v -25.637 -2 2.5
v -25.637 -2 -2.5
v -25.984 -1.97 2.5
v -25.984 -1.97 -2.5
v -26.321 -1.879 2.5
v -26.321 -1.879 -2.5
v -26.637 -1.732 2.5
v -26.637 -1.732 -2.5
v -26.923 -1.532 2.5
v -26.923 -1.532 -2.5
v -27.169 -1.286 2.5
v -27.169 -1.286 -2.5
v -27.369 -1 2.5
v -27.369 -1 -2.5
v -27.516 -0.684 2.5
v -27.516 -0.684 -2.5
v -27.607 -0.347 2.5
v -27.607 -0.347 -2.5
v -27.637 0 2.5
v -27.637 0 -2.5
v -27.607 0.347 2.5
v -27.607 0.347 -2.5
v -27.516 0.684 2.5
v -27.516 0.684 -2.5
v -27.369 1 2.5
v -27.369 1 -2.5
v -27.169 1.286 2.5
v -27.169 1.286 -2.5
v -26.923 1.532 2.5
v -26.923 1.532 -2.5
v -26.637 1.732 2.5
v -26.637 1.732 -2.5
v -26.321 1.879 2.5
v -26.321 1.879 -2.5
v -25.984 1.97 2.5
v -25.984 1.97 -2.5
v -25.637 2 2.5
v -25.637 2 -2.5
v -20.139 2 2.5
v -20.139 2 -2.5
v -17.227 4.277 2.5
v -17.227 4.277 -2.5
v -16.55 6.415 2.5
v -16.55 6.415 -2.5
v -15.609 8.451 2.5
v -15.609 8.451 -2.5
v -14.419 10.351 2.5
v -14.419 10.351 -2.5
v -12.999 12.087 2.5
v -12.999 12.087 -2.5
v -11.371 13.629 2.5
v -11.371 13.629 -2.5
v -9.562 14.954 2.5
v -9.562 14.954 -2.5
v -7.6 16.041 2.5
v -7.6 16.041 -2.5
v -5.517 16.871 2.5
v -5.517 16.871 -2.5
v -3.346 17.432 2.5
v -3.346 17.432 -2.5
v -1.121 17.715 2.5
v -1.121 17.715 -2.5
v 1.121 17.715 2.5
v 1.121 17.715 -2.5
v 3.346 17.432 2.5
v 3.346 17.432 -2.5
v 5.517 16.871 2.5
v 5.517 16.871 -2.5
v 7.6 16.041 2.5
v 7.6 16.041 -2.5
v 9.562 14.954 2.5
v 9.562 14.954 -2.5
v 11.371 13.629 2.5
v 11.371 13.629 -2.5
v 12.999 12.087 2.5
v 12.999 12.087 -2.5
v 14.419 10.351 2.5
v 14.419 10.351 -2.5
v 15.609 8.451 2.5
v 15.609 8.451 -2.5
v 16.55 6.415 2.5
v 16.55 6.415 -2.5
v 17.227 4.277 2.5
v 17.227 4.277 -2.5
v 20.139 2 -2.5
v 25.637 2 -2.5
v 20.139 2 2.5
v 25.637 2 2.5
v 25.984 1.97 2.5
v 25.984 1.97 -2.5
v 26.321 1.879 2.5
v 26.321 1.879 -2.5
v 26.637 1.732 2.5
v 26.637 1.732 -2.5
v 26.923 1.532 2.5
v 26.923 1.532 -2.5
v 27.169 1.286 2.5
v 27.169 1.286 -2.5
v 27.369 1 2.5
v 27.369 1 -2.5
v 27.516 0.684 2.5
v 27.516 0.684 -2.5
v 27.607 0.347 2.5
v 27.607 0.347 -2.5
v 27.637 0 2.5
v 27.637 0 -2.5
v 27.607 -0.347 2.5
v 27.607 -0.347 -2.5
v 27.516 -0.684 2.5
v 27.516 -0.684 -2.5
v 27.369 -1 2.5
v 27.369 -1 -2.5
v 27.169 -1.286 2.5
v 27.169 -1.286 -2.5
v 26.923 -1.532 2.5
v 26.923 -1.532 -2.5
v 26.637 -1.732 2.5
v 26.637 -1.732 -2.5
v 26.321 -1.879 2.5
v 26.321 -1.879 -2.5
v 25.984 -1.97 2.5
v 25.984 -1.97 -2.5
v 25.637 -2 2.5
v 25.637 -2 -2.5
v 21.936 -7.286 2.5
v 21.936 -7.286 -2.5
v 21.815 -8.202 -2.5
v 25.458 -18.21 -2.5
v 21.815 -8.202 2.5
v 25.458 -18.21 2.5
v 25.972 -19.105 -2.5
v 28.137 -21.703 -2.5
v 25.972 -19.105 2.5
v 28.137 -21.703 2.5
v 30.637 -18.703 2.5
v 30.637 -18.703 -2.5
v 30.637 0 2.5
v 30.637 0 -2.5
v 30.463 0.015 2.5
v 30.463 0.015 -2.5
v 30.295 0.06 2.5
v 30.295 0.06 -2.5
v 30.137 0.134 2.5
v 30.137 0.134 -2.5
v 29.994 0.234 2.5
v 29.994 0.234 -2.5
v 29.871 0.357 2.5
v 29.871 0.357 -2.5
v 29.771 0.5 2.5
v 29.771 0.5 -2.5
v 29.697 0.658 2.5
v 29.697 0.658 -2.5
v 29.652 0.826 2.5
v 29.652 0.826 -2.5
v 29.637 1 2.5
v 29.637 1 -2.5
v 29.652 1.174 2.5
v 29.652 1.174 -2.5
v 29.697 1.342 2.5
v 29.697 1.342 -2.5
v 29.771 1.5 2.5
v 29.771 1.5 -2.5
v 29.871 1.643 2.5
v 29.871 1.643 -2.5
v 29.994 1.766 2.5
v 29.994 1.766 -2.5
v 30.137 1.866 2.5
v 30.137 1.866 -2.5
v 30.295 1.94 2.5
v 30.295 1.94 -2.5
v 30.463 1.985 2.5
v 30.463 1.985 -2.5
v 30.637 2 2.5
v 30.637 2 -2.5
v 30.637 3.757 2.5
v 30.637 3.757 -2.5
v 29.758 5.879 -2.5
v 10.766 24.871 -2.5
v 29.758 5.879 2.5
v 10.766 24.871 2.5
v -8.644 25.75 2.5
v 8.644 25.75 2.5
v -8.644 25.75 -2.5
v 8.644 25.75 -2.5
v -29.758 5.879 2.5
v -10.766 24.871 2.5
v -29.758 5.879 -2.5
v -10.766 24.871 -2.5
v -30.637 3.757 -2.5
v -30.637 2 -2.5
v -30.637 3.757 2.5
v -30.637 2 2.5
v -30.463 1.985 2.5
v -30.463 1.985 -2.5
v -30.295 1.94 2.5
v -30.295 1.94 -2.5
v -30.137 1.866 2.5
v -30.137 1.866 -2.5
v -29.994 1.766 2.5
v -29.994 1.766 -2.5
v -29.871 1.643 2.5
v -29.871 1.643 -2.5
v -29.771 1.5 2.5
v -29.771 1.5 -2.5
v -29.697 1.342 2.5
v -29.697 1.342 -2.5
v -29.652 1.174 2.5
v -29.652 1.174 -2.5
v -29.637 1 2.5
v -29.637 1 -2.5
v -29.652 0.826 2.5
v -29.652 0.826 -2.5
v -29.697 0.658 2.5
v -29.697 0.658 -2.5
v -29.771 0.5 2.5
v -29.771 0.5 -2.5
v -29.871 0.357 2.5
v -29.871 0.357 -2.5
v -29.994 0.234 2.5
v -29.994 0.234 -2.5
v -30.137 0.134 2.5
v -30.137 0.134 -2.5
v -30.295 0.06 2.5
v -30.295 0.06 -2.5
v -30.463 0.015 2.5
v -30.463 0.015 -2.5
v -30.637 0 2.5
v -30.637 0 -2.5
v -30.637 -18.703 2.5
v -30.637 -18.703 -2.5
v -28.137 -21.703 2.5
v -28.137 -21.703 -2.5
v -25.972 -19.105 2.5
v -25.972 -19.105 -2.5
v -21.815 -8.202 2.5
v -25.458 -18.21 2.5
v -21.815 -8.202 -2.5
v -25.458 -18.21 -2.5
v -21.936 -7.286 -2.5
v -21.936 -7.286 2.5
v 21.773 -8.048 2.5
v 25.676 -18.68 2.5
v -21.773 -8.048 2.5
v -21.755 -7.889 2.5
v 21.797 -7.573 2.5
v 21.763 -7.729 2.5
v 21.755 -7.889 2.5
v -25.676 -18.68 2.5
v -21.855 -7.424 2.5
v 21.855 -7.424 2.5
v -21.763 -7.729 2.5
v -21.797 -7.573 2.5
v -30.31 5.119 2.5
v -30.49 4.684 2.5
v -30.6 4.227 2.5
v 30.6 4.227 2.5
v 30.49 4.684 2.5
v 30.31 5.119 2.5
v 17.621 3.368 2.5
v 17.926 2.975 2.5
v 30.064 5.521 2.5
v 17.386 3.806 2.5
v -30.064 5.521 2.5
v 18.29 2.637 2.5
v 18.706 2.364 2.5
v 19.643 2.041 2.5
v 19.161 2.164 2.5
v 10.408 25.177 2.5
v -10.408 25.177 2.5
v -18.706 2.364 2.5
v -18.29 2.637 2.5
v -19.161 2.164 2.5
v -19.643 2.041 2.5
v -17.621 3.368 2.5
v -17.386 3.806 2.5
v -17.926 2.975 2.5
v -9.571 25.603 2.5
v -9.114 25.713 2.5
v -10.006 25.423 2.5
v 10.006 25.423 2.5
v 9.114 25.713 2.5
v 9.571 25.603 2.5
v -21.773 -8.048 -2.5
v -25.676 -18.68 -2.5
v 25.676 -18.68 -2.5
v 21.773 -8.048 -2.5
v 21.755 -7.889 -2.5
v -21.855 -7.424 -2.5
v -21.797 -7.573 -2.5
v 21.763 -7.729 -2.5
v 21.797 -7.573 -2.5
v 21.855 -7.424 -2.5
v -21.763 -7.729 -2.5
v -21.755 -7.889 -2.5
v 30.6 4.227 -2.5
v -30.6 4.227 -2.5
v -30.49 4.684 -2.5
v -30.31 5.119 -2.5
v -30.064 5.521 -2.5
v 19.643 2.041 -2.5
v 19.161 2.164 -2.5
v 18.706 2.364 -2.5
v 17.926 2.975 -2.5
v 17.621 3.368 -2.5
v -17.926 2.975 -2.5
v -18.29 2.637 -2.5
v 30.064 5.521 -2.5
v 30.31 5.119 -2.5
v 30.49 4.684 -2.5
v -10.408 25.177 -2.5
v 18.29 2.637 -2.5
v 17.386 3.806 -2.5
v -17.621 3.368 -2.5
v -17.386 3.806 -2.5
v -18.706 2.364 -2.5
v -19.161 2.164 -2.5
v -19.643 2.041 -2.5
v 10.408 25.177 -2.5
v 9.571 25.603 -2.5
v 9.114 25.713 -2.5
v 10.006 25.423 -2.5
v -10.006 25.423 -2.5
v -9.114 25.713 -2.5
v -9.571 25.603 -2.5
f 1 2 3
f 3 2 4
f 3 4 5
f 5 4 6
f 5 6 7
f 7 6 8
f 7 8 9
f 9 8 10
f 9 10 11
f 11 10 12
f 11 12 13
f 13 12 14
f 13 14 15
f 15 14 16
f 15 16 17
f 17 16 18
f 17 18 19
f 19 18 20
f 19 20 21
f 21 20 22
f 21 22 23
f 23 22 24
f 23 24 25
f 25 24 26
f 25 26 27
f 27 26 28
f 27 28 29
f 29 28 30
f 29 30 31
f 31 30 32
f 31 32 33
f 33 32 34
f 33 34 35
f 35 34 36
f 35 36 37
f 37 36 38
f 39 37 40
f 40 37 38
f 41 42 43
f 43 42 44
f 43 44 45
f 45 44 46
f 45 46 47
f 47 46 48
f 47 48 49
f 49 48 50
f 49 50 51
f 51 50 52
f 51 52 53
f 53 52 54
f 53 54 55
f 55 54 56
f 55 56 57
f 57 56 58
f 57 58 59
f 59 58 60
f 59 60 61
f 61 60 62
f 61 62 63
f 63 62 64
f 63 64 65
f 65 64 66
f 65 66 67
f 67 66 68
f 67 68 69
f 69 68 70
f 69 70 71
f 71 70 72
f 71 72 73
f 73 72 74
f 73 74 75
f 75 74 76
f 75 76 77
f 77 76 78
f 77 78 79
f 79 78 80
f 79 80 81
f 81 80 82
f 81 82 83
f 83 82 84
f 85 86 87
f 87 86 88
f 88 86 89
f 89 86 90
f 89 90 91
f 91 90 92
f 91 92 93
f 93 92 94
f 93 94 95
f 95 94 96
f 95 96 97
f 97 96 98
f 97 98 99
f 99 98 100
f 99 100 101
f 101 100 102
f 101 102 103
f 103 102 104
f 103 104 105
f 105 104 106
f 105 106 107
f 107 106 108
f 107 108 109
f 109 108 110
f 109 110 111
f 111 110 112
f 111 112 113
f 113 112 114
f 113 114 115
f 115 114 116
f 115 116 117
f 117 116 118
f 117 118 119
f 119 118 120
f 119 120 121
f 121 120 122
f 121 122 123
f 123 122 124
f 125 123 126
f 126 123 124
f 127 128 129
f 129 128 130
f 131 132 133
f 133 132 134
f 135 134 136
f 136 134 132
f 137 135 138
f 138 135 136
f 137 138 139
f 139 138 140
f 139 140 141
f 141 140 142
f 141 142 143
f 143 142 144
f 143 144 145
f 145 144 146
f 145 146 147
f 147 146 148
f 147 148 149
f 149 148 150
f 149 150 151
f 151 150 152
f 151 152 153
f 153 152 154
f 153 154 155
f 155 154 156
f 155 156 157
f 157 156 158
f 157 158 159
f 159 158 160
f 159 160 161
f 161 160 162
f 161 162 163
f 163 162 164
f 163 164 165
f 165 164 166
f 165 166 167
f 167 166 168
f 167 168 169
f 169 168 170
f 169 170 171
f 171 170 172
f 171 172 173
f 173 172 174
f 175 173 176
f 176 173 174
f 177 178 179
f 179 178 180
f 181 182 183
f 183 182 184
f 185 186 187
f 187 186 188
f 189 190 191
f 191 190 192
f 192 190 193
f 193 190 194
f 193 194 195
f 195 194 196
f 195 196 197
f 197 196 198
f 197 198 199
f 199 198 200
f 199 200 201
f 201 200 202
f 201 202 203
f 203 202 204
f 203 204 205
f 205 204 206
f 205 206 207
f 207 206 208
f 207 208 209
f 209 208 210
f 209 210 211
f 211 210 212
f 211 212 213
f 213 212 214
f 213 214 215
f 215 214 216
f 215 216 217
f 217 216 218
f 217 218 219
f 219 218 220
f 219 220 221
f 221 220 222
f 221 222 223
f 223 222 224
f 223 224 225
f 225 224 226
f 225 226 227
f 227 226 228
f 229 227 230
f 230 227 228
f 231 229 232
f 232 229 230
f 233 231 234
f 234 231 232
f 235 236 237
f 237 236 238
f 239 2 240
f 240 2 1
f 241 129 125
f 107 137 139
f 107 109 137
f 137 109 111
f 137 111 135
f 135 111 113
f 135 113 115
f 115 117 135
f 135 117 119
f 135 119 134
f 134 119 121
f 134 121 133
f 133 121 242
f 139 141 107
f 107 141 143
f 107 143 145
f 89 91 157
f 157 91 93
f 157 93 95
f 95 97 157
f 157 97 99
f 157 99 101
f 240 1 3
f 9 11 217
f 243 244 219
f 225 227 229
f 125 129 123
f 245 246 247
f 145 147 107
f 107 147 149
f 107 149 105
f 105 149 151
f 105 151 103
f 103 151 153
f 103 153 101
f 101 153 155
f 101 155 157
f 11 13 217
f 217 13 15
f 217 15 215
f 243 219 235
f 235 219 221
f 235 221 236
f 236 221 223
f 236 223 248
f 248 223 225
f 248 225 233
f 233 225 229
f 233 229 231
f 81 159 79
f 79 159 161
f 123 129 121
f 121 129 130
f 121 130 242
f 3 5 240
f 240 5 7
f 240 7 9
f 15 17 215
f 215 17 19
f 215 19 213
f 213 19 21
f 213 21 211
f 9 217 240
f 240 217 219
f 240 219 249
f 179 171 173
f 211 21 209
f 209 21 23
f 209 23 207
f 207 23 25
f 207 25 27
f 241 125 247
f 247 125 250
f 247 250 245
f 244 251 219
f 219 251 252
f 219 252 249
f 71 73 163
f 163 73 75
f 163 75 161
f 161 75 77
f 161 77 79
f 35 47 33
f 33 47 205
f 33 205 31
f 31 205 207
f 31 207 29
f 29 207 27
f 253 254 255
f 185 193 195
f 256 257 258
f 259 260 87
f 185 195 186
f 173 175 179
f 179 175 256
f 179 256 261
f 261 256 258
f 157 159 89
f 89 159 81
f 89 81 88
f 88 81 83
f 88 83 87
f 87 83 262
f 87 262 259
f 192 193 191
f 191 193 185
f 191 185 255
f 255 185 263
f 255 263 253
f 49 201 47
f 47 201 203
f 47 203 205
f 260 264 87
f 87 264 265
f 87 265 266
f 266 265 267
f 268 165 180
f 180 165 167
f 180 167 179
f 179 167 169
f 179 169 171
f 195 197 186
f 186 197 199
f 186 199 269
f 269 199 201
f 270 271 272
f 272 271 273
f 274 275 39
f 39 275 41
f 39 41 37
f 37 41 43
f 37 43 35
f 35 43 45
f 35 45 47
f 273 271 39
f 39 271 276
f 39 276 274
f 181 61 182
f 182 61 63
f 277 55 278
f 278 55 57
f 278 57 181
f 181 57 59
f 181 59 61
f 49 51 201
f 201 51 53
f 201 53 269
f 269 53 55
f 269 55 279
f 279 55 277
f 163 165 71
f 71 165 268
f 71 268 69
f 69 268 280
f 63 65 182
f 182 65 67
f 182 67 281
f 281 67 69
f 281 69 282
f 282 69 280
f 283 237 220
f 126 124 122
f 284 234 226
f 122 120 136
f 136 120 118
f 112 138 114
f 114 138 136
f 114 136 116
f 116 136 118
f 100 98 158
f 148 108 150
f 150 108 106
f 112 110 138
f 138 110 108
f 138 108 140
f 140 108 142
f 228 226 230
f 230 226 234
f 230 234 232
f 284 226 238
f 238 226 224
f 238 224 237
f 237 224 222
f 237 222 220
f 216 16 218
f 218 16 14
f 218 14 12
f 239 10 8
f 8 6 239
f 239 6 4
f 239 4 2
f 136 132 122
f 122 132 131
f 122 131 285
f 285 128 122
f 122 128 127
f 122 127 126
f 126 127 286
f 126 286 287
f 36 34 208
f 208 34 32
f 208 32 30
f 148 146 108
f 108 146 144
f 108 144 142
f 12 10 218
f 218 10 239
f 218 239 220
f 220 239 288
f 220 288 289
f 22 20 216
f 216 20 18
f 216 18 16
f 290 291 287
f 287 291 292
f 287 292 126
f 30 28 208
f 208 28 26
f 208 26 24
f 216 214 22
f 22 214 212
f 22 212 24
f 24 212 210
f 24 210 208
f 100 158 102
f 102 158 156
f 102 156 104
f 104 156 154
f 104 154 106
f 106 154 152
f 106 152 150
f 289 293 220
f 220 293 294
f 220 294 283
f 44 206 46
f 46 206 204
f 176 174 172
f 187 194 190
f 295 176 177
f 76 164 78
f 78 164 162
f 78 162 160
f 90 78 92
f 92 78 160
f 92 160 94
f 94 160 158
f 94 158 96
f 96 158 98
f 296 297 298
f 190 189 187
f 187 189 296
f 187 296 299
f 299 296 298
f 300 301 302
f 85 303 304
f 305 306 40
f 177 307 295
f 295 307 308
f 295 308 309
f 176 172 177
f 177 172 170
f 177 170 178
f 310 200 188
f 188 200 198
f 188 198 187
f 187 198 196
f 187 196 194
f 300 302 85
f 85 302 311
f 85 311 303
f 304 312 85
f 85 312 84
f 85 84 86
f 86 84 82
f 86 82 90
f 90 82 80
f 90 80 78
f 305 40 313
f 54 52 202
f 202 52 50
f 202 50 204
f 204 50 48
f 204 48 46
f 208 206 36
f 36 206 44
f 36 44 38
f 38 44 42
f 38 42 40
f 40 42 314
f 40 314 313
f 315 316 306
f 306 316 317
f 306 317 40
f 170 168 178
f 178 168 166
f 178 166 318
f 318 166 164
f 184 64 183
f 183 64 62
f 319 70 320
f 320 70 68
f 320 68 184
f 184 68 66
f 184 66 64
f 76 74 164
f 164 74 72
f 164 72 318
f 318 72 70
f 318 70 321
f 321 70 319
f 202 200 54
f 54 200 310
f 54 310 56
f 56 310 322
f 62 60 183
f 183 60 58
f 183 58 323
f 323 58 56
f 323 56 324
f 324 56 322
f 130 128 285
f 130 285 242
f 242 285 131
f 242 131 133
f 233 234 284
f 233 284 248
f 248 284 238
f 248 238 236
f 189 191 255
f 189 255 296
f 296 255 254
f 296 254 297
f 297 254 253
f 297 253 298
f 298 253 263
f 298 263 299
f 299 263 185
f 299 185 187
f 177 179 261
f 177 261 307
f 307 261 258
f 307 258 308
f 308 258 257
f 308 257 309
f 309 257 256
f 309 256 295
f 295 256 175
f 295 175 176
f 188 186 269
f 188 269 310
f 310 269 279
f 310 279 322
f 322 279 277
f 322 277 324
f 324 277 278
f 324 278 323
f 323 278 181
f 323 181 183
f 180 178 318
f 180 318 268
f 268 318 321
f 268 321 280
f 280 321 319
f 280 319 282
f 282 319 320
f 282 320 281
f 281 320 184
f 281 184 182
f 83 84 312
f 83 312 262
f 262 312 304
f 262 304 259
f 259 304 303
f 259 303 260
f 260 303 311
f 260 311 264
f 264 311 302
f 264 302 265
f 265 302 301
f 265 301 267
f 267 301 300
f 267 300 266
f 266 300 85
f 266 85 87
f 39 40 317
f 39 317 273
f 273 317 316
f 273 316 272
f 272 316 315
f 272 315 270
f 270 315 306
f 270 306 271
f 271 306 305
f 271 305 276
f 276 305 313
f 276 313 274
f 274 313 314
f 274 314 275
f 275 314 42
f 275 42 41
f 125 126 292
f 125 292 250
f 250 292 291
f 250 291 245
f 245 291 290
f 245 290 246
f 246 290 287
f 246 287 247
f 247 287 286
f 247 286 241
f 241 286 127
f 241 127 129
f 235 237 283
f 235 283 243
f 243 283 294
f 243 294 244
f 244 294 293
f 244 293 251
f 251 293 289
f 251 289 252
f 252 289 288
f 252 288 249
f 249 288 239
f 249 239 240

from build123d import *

# Parameters (mm, degrees)
BOSS_EXTRUDE1_DEPTH = 2.5
FILLET1_R           = 3
FILLET2_R           = 1


with BuildPart() as part:
    # Sketch1 → Boss-Extrude1 (new, symmetric)
    with BuildSketch(Plane.XY):
        with BuildLine():
            Line((17.636964024, 2), (25.636964024, 2))
            ThreePointArc((25.636964024, 2), (27.636964024, 0), (25.636964024, -2))
            Line((25.636964024, -2), (21.636964024, -7.712592027))
            Line((21.636964024, -7.712592027), (25.636964024, -18.702501705))
            Line((25.636964024, -18.702501705), (28.136964024, -21.702501705))
            Line((28.136964024, -21.702501705), (30.636964024, -18.702501705))
            Line((30.636964024, -18.702501705), (30.636964024, 0))
            ThreePointArc((30.636964024, 0), (29.636964024, 1), (30.636964024, 2))
            Line((30.636964024, 2), (30.636964024, 5))
            Line((30.636964024, 5), (9.886964024, 25.75))
            Line((9.886964024, 25.75), (-9.886964024, 25.75))
            Line((-9.886964024, 25.75), (-30.636964024, 5))
            Line((-30.636964024, 5), (-30.636964024, 2))
            ThreePointArc((-30.636964024, 2), (-29.636964024, 1), (-30.636964024, 0))
            Line((-30.636964024, 0), (-30.636964024, -18.702501705))
            Line((-30.636964024, -18.702501705), (-28.136964024, -21.702501705))
            Line((-28.136964024, -21.702501705), (-25.636964024, -18.702501705))
            Line((-25.636964024, -18.702501705), (-21.636964024, -7.712592027))
            Line((-21.636964024, -7.712592027), (-25.636964024, -2))
            ThreePointArc((-25.636964024, -2), (-27.636964024, 0), (-25.636964024, 2))
            Line((-25.636964024, 2), (-17.636964024, 2))
            ThreePointArc((-17.636964024, 2), (0, 17.75), (17.636964024, 2))
        make_face()
    extrude(amount=BOSS_EXTRUDE1_DEPTH, both=True)

    # Fillet1
    fillet1_edges = [part.edges().sort_by_distance(p)[0] for p in [
        (-25.636964024, -18.702501705, 0),
        (-30.636964024, 5, 0),
        (-9.886964024, 25.75, 0),
        (9.886964024, 25.75, 0),
        (30.636964024, 5, 0),
        (25.636964024, -18.702501705, 0),
        (17.636964024, 2, 0),
        (-17.636964024, 2, 0),
    ]]
    fillet(fillet1_edges, radius=FILLET1_R)

    # Fillet2
    fillet2_edges = [part.edges().sort_by_distance(p)[0] for p in [
        (-21.636964024, -7.712592027, 0),
        (21.636964024, -7.712592027, 0),
    ]]
    fillet(fillet2_edges, radius=FILLET2_R)


solid = part.part
